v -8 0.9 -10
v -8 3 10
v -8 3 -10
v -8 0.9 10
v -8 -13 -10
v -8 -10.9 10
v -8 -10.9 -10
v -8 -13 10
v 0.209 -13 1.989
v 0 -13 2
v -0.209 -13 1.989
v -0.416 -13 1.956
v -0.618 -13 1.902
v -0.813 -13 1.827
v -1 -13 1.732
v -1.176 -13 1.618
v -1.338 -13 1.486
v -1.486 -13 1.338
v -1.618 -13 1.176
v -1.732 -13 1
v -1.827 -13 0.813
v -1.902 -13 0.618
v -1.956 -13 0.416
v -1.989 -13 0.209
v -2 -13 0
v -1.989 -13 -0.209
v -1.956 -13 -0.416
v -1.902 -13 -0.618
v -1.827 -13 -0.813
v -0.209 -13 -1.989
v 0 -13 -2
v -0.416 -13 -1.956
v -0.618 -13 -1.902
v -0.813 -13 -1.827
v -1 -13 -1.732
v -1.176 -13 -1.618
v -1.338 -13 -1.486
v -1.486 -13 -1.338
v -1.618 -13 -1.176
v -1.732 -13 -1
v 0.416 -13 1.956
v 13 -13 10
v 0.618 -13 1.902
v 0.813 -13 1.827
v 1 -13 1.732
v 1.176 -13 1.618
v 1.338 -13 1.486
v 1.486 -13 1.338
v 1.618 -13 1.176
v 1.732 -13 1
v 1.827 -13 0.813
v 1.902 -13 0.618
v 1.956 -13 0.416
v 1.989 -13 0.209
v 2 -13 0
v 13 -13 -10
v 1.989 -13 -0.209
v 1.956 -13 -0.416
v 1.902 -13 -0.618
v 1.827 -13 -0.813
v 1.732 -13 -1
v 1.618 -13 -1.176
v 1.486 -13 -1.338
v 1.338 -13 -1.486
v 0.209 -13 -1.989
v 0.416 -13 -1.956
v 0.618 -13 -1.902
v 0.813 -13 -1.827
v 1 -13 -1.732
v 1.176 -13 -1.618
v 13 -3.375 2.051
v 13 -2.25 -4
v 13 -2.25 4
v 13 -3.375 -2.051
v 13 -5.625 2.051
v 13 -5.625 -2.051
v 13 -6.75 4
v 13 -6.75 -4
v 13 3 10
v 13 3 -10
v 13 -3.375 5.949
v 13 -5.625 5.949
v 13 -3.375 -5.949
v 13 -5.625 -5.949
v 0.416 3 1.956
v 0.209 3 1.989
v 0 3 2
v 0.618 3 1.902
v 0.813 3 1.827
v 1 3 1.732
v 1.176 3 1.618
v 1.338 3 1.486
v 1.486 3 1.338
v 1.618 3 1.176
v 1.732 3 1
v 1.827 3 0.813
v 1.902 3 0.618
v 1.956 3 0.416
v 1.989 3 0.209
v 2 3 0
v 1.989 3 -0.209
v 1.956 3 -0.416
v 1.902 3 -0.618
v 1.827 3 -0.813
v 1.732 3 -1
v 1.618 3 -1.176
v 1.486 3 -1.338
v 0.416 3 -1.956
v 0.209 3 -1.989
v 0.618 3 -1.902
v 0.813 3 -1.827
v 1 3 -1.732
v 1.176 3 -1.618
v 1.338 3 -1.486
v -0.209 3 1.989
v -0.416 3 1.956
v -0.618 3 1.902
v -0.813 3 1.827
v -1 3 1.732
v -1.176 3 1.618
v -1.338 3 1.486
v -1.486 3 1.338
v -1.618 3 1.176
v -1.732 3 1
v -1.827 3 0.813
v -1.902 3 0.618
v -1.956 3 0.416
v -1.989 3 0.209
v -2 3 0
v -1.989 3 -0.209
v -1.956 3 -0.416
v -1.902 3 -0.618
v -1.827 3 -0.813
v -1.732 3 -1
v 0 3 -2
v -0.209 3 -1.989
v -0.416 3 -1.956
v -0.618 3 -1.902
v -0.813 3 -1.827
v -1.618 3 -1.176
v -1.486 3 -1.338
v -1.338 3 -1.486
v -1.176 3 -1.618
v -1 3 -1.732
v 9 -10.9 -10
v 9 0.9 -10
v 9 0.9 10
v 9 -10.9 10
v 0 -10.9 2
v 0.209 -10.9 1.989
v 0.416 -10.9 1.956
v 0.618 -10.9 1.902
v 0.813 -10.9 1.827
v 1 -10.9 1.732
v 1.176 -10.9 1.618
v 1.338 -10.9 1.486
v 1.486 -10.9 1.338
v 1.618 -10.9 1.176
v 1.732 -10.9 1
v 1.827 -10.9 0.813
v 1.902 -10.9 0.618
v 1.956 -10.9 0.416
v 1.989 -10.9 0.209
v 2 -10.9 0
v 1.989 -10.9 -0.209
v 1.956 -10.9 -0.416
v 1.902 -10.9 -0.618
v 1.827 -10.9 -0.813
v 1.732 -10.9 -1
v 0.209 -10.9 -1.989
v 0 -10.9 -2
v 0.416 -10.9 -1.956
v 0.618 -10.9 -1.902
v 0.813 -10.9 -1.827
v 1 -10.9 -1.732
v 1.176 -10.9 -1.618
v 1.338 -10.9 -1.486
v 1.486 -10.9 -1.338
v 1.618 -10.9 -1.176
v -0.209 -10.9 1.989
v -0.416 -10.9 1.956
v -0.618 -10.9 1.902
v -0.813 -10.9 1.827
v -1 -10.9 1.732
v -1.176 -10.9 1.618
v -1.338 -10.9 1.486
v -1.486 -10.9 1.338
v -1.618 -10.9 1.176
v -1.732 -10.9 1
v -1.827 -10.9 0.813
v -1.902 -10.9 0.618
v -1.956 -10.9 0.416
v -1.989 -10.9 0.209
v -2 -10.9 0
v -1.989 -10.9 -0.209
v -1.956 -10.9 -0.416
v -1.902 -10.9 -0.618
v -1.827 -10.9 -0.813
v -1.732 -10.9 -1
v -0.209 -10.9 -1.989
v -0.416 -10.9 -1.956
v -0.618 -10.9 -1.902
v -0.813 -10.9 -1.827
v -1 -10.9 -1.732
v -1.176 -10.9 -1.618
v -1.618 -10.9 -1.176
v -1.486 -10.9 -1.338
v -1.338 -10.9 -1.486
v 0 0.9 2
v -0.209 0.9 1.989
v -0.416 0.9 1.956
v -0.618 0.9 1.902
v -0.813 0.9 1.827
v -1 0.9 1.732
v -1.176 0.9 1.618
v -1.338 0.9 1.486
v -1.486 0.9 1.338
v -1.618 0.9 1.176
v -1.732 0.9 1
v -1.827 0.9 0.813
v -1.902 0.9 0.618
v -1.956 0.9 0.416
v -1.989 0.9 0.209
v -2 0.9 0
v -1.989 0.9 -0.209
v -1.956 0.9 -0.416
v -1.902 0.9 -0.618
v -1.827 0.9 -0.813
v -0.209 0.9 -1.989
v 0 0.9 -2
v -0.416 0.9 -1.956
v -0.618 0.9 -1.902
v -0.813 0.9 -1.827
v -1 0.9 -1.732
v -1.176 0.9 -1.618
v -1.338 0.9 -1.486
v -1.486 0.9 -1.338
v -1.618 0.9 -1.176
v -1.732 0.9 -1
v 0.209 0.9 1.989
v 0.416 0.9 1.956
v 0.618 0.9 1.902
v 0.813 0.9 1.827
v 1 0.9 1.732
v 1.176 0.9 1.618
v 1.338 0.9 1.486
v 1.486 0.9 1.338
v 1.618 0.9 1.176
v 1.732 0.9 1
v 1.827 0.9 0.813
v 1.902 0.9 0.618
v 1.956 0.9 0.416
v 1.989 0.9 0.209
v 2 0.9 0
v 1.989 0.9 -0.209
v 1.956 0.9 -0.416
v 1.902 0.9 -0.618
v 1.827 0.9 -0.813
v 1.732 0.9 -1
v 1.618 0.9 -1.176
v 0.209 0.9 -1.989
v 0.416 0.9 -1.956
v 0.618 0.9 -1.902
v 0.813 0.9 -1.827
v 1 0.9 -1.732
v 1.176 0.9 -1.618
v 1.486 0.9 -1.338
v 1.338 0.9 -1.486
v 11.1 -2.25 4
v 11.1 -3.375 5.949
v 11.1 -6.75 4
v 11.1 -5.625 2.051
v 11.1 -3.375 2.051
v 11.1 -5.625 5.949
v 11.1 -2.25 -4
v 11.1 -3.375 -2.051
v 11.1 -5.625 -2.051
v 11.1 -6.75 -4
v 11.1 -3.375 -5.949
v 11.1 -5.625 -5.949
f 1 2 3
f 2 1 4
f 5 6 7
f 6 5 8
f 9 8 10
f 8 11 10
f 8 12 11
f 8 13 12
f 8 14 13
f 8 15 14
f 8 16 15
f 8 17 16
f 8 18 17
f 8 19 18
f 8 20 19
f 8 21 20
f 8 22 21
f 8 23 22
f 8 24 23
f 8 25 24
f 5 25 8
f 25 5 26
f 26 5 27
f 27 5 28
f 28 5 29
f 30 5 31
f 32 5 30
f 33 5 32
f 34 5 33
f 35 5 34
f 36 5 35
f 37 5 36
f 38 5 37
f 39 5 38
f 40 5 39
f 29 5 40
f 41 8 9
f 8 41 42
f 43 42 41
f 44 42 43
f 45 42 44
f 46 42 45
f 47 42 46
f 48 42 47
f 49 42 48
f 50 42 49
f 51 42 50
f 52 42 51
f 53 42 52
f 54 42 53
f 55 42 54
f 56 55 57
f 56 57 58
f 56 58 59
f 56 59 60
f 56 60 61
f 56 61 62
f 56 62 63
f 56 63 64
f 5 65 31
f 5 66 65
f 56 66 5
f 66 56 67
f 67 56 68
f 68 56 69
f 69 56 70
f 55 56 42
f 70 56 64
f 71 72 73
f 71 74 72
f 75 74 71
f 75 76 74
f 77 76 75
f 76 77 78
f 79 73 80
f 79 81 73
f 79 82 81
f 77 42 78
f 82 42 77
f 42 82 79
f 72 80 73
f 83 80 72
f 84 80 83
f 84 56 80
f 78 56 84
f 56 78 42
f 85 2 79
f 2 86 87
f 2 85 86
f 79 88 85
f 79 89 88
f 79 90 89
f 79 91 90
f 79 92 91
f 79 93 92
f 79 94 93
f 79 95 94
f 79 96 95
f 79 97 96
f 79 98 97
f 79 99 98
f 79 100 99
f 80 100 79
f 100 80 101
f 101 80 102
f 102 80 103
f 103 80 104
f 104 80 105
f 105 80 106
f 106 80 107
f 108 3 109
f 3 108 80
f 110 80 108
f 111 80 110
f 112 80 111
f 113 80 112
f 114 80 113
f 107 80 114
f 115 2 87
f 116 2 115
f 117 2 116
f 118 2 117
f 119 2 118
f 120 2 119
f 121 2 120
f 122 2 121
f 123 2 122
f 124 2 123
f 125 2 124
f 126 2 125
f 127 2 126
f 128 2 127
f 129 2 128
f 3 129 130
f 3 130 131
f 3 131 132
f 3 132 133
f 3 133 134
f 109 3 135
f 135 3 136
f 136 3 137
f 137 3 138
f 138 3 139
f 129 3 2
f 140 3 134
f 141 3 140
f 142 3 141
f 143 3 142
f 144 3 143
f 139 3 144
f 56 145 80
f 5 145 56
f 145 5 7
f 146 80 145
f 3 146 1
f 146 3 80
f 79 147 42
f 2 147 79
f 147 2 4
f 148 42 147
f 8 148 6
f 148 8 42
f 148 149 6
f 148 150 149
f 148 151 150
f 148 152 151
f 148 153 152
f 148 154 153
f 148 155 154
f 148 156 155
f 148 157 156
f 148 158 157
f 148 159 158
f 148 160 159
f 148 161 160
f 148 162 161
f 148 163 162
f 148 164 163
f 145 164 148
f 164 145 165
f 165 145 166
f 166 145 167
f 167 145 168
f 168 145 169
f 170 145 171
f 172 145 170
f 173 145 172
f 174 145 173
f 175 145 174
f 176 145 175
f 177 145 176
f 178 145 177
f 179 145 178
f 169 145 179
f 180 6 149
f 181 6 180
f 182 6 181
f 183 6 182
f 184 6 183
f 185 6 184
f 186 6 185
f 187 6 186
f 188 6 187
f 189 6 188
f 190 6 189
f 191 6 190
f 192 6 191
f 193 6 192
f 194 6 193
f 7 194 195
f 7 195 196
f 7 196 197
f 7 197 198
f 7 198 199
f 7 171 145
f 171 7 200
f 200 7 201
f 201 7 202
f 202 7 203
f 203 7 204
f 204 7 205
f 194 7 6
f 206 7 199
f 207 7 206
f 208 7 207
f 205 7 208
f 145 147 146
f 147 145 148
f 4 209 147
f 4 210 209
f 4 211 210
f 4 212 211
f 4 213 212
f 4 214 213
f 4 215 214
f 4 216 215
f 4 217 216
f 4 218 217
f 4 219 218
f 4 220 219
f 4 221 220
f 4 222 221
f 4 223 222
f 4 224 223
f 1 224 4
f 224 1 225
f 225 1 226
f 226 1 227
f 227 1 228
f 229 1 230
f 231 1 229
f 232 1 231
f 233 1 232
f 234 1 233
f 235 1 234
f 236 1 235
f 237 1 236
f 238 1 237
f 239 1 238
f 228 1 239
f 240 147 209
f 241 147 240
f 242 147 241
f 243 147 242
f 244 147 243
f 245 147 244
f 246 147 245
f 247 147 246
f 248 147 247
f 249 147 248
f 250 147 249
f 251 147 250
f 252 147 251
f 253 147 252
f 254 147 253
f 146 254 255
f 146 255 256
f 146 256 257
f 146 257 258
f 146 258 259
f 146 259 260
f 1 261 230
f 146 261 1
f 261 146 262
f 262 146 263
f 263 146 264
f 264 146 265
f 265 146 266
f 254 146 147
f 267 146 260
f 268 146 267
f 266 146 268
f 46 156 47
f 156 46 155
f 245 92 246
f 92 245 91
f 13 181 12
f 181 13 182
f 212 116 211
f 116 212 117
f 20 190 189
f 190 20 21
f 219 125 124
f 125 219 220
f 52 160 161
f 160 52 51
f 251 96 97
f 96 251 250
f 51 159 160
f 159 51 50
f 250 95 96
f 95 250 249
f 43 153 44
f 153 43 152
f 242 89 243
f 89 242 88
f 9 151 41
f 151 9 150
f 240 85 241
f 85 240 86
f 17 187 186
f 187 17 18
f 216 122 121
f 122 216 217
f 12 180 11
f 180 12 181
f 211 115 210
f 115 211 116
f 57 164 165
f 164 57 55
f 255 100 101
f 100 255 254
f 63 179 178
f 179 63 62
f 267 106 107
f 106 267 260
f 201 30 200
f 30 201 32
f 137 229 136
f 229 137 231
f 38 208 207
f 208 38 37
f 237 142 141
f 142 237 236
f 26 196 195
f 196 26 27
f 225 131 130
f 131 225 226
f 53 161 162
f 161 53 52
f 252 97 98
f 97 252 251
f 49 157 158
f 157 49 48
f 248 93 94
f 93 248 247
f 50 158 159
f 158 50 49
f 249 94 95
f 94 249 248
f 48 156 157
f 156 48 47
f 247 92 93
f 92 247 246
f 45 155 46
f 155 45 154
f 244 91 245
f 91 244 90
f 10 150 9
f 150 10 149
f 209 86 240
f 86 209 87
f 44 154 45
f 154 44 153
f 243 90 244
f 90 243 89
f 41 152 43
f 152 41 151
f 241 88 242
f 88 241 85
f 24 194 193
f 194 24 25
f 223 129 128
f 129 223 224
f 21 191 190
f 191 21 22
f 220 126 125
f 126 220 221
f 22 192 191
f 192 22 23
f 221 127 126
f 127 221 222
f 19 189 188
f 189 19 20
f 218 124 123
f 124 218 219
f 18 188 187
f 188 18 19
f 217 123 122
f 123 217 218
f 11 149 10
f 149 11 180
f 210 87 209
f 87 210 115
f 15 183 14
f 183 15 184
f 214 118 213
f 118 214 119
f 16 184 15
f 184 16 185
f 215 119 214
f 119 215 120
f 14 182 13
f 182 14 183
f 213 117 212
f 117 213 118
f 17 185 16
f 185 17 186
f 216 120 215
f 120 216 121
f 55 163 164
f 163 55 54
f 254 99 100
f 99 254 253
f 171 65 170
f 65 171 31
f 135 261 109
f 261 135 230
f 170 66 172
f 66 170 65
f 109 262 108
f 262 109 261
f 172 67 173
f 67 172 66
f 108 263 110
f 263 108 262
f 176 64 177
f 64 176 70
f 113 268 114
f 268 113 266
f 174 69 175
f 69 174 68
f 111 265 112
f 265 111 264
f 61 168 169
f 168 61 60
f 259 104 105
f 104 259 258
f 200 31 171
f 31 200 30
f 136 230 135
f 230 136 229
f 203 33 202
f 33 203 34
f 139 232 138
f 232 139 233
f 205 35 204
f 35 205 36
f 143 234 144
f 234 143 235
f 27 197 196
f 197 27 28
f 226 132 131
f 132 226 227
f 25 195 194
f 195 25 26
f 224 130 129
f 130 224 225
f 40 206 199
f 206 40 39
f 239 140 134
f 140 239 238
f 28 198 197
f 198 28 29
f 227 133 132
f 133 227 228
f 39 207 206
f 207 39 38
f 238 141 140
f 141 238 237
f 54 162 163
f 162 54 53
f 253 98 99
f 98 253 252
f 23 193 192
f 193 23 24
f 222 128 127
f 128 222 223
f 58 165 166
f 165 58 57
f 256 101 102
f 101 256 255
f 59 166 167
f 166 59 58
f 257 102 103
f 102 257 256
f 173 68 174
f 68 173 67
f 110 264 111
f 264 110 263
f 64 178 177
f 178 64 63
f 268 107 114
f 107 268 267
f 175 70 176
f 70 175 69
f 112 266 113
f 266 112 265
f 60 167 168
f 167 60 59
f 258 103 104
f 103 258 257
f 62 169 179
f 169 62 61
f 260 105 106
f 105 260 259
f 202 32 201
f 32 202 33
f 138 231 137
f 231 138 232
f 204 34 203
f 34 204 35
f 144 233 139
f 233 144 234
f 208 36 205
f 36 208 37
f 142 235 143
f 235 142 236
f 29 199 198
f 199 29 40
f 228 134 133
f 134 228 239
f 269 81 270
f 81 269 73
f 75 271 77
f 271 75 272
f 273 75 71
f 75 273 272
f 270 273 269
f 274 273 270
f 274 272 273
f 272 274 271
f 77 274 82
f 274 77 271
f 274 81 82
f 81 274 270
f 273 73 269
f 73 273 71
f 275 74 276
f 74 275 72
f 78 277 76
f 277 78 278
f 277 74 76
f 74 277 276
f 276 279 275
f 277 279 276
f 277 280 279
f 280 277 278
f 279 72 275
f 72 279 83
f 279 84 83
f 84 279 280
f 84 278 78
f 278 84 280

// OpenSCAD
//pulley carrier
$fn = 60;
module m4pulley(){
    difference(){
        cylinder(d = 16, h = 10);
        translate([0,0,-0.1])cylinder(d = 4, h = 11);
    
    }
}


translate([0,0,.1])m4pulley();

module pulleyHolder(){
    difference(){
        translate([-8,-10,-3]) cube([21,20,16]); 
        translate([-11,-11,-.9]) cube([20,22,11.8]);
        translate([0,0,-5])cylinder(d = 4, h = 20);
        
        translate([11.1, 4,4.5])rotate([0,90,0])cylinder(d = 4.5, h = 2,$fn=6);
        translate([11.1,-4,4.5])rotate([0,90,0])cylinder(d = 4.5, h = 2,$fn=6);
    }
}

!rotate([90,0,0])pulleyHolder();
